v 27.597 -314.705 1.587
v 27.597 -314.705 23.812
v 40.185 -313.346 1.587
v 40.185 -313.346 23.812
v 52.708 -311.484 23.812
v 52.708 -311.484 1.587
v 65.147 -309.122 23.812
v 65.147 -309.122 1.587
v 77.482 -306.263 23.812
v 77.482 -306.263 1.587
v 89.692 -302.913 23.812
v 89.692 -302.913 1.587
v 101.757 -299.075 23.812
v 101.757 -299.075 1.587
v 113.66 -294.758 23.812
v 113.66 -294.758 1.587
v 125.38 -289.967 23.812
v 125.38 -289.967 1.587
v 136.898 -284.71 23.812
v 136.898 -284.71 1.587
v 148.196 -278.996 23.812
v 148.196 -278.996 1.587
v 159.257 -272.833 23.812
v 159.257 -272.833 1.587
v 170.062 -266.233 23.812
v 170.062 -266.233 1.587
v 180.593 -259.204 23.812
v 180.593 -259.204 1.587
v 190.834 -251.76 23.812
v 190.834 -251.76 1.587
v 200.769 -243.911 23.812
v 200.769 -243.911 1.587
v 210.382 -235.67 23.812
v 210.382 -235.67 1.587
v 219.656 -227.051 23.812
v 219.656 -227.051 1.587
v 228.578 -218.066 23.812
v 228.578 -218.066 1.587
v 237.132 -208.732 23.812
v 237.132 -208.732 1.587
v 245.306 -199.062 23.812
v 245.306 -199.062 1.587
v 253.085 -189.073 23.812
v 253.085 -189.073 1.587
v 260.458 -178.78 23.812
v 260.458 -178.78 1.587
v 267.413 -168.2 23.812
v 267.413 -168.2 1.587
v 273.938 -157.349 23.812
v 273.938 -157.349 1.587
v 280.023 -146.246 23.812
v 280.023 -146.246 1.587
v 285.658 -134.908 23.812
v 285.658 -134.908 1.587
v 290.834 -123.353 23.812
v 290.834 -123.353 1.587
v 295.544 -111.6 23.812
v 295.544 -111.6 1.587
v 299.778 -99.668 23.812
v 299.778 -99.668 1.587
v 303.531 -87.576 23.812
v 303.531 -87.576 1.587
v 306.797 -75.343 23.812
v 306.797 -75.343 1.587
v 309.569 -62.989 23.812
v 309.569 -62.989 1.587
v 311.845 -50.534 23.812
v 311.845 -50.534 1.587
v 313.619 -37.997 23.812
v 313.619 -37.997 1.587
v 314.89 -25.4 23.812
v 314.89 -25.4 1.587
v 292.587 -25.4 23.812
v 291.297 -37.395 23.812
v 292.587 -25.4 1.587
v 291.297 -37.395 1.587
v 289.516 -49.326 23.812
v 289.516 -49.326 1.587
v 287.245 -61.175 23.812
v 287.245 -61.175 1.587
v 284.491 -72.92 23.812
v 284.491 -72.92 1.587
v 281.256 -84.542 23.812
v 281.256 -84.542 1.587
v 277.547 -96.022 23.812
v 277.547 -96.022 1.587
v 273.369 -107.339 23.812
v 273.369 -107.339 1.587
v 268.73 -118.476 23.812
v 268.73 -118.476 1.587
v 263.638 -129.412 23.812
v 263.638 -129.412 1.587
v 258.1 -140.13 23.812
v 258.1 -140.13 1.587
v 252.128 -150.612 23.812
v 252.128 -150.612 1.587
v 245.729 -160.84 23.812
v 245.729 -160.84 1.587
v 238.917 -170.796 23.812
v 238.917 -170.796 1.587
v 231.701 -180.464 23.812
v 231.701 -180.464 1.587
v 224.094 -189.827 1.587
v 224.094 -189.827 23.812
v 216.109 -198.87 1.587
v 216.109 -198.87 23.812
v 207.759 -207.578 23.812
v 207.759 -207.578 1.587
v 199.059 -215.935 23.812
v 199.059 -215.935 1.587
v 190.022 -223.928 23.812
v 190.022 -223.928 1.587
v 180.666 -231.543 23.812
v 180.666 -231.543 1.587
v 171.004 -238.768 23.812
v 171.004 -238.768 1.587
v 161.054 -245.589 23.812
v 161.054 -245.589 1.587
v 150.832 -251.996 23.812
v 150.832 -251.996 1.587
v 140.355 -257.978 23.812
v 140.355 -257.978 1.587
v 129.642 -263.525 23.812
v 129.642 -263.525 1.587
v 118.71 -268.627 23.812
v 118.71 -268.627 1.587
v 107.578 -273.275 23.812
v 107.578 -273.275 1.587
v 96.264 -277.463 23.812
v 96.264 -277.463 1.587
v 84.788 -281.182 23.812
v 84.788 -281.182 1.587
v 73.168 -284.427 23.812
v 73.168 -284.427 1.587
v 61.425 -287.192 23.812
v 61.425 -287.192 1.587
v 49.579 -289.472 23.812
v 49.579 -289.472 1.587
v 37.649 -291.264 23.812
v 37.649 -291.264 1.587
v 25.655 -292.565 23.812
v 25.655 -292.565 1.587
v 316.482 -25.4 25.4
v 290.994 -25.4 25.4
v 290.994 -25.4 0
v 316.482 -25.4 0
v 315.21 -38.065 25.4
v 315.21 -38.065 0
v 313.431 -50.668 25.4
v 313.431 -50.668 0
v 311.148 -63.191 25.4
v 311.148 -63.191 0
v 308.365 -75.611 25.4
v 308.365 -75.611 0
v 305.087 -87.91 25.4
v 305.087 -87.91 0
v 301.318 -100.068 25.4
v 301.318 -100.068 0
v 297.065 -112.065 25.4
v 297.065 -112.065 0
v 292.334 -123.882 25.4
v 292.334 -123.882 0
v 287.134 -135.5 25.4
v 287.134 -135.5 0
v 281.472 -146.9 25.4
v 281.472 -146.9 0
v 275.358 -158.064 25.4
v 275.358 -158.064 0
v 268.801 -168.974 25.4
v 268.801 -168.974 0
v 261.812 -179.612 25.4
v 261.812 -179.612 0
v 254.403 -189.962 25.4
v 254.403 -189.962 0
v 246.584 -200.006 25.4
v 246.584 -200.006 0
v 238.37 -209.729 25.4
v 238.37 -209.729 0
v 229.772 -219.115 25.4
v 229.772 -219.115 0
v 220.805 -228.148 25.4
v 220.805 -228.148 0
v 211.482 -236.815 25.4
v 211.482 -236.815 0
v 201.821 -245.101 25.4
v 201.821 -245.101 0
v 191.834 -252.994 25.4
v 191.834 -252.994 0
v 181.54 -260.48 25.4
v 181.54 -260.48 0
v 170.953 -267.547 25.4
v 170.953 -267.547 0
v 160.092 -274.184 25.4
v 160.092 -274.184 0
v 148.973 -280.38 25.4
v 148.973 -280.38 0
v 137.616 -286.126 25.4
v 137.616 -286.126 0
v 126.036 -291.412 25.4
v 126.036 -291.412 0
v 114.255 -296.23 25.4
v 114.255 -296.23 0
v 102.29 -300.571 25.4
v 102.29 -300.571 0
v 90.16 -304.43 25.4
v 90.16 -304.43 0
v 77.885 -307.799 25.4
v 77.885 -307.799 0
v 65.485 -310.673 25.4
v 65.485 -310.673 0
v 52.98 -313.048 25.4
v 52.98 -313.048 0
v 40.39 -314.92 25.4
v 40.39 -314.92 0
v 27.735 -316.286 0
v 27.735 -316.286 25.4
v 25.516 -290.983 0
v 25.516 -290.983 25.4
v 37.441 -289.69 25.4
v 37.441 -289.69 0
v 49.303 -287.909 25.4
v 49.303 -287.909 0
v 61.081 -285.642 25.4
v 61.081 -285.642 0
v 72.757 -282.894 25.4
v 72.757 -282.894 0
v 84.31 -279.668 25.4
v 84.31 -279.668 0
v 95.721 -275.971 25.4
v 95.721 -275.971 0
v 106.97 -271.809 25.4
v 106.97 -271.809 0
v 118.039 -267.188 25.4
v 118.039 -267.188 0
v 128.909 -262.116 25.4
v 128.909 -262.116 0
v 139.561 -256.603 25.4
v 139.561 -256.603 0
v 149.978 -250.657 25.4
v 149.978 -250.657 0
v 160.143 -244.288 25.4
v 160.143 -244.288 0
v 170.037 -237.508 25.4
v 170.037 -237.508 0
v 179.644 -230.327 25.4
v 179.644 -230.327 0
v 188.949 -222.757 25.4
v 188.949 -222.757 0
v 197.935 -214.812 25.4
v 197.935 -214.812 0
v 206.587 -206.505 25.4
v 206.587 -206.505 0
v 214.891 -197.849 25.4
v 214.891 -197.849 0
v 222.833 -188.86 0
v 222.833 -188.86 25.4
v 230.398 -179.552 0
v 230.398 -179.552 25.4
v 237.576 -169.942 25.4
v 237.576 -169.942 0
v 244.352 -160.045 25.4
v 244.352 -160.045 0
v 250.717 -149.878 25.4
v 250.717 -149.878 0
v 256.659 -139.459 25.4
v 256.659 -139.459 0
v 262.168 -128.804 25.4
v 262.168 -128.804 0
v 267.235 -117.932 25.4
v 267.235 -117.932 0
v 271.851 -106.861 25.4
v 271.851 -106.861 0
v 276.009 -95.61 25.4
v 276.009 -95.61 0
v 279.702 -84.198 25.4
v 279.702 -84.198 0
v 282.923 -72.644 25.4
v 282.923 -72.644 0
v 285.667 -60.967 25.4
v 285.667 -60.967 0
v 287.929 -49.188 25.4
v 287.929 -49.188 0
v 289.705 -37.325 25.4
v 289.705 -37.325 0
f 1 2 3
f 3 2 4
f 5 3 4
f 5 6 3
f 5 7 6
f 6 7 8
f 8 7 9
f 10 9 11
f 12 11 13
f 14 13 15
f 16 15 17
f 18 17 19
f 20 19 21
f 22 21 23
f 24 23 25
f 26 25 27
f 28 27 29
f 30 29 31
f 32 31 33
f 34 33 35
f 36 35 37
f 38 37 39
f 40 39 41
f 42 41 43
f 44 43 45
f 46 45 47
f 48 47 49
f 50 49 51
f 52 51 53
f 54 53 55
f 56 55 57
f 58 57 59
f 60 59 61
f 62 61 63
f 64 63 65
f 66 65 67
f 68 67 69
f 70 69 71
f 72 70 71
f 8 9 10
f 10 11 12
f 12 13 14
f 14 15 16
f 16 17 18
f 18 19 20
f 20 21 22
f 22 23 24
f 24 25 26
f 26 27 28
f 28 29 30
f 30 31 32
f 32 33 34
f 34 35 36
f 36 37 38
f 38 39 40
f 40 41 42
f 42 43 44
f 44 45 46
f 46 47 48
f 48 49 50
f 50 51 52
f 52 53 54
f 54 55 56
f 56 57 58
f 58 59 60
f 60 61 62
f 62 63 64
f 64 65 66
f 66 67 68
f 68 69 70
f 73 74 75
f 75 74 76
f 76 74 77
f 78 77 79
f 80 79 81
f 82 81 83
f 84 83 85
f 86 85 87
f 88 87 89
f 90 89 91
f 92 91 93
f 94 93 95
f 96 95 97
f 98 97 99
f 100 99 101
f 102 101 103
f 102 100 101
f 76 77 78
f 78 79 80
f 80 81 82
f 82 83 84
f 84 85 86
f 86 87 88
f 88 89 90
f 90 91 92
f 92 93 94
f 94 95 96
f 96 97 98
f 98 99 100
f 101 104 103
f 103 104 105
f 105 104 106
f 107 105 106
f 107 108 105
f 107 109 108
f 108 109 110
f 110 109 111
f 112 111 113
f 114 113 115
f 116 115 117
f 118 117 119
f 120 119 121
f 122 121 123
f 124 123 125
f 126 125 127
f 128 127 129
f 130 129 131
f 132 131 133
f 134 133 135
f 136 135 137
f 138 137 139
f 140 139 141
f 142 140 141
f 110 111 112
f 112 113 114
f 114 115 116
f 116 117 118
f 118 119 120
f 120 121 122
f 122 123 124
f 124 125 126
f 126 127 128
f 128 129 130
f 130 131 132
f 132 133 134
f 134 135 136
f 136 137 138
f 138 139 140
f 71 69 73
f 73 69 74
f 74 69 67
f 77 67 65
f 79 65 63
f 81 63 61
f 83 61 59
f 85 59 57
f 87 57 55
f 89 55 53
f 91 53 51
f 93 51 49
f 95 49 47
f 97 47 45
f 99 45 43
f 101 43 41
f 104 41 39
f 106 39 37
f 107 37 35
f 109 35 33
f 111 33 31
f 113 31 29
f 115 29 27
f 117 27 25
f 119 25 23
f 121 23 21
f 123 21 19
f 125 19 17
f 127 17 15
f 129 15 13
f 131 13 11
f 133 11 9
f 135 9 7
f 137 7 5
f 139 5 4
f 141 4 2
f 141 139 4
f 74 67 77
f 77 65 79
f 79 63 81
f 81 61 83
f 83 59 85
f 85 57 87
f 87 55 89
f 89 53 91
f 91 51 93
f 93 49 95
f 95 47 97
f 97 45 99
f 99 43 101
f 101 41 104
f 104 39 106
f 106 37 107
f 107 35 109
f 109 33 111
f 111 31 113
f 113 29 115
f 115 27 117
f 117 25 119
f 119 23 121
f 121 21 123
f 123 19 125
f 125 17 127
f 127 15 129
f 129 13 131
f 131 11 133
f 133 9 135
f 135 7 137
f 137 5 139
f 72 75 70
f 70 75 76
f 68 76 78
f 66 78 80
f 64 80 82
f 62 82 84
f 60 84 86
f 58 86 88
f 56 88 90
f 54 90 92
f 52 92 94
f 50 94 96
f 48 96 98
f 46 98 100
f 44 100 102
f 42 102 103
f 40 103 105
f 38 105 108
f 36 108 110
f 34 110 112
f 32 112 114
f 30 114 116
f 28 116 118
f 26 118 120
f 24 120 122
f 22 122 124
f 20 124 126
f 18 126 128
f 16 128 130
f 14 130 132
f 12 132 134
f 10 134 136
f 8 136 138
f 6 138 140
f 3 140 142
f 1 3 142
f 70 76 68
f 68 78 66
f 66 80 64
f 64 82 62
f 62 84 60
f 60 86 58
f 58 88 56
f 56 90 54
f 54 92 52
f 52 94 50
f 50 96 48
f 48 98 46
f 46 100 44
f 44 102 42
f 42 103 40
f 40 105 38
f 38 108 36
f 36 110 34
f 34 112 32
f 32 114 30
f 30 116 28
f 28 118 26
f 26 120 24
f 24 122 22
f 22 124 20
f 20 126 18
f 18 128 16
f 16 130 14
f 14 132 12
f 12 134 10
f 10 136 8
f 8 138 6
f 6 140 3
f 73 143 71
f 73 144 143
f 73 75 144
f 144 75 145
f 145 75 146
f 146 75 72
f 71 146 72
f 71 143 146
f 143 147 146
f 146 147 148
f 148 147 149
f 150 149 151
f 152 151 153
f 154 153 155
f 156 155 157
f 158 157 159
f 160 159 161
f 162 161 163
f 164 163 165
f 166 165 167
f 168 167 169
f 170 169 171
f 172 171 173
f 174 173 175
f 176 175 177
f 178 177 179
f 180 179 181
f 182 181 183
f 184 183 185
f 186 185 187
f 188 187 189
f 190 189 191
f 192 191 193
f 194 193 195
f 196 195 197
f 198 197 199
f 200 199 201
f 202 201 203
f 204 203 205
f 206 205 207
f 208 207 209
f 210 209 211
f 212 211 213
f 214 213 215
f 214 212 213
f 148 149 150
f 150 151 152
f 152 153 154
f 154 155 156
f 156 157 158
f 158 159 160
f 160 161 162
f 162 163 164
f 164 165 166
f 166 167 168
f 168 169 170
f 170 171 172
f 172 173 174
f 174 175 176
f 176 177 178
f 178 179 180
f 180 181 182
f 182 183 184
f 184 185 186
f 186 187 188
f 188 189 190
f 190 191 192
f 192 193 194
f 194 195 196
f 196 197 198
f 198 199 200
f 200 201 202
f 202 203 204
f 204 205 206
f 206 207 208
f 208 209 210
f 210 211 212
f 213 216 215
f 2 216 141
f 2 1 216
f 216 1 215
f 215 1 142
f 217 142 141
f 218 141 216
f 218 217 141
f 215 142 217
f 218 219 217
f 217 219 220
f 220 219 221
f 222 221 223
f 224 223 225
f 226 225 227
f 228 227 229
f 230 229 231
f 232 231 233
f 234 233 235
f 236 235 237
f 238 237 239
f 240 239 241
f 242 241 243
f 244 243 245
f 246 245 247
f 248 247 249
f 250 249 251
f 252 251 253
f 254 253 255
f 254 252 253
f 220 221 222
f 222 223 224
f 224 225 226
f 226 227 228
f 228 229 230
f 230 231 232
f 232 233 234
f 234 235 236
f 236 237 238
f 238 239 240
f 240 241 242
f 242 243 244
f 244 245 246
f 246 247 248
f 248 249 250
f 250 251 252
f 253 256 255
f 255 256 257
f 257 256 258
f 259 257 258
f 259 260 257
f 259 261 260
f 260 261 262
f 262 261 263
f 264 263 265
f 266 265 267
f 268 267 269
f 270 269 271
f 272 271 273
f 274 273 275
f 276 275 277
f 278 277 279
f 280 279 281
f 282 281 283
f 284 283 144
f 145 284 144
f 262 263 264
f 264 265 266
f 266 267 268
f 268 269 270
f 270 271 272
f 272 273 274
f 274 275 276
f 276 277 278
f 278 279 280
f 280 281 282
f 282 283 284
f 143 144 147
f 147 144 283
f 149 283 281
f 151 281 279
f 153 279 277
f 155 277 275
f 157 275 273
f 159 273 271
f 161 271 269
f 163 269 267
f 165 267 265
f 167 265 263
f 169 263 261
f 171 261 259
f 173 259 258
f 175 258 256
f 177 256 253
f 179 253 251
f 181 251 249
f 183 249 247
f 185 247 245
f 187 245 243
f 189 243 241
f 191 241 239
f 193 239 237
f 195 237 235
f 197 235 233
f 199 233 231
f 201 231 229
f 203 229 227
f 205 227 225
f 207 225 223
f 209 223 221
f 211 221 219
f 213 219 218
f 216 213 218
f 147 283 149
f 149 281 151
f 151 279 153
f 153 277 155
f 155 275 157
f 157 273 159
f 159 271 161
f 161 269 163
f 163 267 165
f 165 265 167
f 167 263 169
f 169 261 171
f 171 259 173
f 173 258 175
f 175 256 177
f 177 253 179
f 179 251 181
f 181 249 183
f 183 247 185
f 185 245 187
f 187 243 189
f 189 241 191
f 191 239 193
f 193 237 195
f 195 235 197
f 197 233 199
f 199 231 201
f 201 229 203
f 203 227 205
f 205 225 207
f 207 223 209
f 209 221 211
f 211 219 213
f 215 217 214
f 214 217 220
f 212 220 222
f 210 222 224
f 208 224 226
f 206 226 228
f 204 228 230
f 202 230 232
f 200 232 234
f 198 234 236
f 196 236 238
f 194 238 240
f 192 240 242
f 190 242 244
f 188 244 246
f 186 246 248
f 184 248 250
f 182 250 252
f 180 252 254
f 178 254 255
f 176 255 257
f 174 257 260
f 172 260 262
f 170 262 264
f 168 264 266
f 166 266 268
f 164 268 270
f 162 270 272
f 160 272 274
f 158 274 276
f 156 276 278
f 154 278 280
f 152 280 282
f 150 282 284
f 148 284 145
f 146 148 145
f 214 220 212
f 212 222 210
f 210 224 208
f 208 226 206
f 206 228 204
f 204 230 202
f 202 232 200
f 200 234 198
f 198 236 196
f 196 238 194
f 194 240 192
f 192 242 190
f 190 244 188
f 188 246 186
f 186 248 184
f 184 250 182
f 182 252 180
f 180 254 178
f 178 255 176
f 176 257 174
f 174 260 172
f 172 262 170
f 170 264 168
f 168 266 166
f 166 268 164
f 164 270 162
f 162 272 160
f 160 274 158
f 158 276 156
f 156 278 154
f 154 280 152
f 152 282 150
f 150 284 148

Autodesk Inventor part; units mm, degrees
ref_plane "YZ Plane" through (0, 0, 0) normal (1, 0, 0) x (0, 1, 0)
ref_plane "XZ Plane" through (0, 0, 0) normal (0, 1, 0) x (-1, 0, 0)
ref_plane "XY Plane" through (0, 0, 0) normal (0, 0, 1) x (1, 0, 0)
sketch "Sketch1" plane through (0, 0, 0) normal (0, 0, 1) x (1, 0, 0)
  arc A0 (25.5164, -290.9834) -> (290.9936, -25.4) centre (0, 0) ccw
  arc A1 (27.7352, -316.2863) -> (316.4824, -25.4) centre (0, 0) ccw
  line L0 (25.5164, -290.9834) -> (27.7352, -316.2863)
  line L1 (290.9936, -25.4) -> (316.4824, -25.4)
  line L2 (0, 0) -> (25.5164, -290.9834) construction
  line L3 (0, -292.1) -> (0, 0) construction
  line L4 (290.9936, -25.4) -> (0, 0) construction
  line L5 (290.9936, 0) -> (316.4824, 0) construction
  line L6 (316.4824, 0) -> (316.4824, -25.4) construction
  line L7 (316.4824, -25.4) -> (290.9936, -25.4) construction
  line L8 (290.9936, -25.4) -> (290.9936, 0) construction
  line L9 (0, 0) -> (359.7285, 0) construction
  dimension "d0" = 292.1
  dimension "d1" = 25.4
  dimension "d9" = 25.4
  dimension "d10" = 80
extrude "Extrusion1" add sketch "Sketch1" along normal blind 25.4
shell "Shell1" thickness 1.5875 removed faces 2 at (299.4898, -25.4, 8.4667) at (26.9956, -307.852, 16.9333)
properties part number "Shooter_Frame_RearGuide" material "Aluminum-6061"
